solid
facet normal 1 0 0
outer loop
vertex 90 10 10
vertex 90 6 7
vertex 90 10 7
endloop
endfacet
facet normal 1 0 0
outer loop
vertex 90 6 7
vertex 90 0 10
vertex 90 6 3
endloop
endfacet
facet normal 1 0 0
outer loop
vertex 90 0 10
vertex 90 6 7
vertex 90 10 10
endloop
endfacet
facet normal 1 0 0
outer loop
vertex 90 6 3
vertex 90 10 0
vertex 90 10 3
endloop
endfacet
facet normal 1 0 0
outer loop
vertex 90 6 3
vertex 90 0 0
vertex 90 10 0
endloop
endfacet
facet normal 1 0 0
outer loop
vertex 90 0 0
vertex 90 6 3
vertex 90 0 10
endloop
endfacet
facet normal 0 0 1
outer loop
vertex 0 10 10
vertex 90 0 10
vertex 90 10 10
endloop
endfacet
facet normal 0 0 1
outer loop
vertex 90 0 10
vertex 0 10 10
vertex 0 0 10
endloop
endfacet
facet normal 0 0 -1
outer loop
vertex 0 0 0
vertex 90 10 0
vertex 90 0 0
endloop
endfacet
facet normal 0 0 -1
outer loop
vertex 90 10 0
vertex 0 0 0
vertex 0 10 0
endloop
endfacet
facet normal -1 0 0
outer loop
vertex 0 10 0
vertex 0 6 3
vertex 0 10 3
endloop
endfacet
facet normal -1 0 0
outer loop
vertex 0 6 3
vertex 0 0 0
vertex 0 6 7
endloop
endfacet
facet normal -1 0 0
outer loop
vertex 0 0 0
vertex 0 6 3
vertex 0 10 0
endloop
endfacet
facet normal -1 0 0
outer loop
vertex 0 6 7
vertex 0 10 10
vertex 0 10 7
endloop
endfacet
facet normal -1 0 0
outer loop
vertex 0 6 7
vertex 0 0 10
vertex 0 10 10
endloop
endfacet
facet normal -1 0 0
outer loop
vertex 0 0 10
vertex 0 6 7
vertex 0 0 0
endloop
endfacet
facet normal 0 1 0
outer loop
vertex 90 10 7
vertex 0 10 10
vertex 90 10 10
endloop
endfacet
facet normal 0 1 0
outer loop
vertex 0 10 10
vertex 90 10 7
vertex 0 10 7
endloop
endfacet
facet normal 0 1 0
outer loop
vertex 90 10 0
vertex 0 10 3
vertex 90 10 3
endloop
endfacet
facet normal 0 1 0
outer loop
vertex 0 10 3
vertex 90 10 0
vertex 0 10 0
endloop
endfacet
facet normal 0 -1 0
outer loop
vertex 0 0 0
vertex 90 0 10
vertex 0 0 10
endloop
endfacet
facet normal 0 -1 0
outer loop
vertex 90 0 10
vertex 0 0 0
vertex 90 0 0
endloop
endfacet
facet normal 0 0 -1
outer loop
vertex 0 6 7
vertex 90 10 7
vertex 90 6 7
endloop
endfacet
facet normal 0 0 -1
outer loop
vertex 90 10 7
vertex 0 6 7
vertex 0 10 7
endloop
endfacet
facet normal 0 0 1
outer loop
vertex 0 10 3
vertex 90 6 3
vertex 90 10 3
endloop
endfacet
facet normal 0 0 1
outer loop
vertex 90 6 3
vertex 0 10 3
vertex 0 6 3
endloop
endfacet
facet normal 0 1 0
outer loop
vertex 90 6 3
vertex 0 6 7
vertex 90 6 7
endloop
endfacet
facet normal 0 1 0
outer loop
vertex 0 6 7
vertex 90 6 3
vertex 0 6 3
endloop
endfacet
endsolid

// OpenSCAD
// Length of the rail
length = 90; //[50 : 150]

// Height/Width of the rail
height = 10; //[4 : 20]

// Height/Depth of the gap in the rail
gap = 4; //[2: 20]

PiHolderRail(length, height, gap);

module PiHolderRail(length, height, gap) {
    difference() {
        color("yellow") cube([length, height, height]);
        translate([0, height - gap, (height - gap)/2]) {
            cube([length, height, gap]);
        } 
    }
    
}
